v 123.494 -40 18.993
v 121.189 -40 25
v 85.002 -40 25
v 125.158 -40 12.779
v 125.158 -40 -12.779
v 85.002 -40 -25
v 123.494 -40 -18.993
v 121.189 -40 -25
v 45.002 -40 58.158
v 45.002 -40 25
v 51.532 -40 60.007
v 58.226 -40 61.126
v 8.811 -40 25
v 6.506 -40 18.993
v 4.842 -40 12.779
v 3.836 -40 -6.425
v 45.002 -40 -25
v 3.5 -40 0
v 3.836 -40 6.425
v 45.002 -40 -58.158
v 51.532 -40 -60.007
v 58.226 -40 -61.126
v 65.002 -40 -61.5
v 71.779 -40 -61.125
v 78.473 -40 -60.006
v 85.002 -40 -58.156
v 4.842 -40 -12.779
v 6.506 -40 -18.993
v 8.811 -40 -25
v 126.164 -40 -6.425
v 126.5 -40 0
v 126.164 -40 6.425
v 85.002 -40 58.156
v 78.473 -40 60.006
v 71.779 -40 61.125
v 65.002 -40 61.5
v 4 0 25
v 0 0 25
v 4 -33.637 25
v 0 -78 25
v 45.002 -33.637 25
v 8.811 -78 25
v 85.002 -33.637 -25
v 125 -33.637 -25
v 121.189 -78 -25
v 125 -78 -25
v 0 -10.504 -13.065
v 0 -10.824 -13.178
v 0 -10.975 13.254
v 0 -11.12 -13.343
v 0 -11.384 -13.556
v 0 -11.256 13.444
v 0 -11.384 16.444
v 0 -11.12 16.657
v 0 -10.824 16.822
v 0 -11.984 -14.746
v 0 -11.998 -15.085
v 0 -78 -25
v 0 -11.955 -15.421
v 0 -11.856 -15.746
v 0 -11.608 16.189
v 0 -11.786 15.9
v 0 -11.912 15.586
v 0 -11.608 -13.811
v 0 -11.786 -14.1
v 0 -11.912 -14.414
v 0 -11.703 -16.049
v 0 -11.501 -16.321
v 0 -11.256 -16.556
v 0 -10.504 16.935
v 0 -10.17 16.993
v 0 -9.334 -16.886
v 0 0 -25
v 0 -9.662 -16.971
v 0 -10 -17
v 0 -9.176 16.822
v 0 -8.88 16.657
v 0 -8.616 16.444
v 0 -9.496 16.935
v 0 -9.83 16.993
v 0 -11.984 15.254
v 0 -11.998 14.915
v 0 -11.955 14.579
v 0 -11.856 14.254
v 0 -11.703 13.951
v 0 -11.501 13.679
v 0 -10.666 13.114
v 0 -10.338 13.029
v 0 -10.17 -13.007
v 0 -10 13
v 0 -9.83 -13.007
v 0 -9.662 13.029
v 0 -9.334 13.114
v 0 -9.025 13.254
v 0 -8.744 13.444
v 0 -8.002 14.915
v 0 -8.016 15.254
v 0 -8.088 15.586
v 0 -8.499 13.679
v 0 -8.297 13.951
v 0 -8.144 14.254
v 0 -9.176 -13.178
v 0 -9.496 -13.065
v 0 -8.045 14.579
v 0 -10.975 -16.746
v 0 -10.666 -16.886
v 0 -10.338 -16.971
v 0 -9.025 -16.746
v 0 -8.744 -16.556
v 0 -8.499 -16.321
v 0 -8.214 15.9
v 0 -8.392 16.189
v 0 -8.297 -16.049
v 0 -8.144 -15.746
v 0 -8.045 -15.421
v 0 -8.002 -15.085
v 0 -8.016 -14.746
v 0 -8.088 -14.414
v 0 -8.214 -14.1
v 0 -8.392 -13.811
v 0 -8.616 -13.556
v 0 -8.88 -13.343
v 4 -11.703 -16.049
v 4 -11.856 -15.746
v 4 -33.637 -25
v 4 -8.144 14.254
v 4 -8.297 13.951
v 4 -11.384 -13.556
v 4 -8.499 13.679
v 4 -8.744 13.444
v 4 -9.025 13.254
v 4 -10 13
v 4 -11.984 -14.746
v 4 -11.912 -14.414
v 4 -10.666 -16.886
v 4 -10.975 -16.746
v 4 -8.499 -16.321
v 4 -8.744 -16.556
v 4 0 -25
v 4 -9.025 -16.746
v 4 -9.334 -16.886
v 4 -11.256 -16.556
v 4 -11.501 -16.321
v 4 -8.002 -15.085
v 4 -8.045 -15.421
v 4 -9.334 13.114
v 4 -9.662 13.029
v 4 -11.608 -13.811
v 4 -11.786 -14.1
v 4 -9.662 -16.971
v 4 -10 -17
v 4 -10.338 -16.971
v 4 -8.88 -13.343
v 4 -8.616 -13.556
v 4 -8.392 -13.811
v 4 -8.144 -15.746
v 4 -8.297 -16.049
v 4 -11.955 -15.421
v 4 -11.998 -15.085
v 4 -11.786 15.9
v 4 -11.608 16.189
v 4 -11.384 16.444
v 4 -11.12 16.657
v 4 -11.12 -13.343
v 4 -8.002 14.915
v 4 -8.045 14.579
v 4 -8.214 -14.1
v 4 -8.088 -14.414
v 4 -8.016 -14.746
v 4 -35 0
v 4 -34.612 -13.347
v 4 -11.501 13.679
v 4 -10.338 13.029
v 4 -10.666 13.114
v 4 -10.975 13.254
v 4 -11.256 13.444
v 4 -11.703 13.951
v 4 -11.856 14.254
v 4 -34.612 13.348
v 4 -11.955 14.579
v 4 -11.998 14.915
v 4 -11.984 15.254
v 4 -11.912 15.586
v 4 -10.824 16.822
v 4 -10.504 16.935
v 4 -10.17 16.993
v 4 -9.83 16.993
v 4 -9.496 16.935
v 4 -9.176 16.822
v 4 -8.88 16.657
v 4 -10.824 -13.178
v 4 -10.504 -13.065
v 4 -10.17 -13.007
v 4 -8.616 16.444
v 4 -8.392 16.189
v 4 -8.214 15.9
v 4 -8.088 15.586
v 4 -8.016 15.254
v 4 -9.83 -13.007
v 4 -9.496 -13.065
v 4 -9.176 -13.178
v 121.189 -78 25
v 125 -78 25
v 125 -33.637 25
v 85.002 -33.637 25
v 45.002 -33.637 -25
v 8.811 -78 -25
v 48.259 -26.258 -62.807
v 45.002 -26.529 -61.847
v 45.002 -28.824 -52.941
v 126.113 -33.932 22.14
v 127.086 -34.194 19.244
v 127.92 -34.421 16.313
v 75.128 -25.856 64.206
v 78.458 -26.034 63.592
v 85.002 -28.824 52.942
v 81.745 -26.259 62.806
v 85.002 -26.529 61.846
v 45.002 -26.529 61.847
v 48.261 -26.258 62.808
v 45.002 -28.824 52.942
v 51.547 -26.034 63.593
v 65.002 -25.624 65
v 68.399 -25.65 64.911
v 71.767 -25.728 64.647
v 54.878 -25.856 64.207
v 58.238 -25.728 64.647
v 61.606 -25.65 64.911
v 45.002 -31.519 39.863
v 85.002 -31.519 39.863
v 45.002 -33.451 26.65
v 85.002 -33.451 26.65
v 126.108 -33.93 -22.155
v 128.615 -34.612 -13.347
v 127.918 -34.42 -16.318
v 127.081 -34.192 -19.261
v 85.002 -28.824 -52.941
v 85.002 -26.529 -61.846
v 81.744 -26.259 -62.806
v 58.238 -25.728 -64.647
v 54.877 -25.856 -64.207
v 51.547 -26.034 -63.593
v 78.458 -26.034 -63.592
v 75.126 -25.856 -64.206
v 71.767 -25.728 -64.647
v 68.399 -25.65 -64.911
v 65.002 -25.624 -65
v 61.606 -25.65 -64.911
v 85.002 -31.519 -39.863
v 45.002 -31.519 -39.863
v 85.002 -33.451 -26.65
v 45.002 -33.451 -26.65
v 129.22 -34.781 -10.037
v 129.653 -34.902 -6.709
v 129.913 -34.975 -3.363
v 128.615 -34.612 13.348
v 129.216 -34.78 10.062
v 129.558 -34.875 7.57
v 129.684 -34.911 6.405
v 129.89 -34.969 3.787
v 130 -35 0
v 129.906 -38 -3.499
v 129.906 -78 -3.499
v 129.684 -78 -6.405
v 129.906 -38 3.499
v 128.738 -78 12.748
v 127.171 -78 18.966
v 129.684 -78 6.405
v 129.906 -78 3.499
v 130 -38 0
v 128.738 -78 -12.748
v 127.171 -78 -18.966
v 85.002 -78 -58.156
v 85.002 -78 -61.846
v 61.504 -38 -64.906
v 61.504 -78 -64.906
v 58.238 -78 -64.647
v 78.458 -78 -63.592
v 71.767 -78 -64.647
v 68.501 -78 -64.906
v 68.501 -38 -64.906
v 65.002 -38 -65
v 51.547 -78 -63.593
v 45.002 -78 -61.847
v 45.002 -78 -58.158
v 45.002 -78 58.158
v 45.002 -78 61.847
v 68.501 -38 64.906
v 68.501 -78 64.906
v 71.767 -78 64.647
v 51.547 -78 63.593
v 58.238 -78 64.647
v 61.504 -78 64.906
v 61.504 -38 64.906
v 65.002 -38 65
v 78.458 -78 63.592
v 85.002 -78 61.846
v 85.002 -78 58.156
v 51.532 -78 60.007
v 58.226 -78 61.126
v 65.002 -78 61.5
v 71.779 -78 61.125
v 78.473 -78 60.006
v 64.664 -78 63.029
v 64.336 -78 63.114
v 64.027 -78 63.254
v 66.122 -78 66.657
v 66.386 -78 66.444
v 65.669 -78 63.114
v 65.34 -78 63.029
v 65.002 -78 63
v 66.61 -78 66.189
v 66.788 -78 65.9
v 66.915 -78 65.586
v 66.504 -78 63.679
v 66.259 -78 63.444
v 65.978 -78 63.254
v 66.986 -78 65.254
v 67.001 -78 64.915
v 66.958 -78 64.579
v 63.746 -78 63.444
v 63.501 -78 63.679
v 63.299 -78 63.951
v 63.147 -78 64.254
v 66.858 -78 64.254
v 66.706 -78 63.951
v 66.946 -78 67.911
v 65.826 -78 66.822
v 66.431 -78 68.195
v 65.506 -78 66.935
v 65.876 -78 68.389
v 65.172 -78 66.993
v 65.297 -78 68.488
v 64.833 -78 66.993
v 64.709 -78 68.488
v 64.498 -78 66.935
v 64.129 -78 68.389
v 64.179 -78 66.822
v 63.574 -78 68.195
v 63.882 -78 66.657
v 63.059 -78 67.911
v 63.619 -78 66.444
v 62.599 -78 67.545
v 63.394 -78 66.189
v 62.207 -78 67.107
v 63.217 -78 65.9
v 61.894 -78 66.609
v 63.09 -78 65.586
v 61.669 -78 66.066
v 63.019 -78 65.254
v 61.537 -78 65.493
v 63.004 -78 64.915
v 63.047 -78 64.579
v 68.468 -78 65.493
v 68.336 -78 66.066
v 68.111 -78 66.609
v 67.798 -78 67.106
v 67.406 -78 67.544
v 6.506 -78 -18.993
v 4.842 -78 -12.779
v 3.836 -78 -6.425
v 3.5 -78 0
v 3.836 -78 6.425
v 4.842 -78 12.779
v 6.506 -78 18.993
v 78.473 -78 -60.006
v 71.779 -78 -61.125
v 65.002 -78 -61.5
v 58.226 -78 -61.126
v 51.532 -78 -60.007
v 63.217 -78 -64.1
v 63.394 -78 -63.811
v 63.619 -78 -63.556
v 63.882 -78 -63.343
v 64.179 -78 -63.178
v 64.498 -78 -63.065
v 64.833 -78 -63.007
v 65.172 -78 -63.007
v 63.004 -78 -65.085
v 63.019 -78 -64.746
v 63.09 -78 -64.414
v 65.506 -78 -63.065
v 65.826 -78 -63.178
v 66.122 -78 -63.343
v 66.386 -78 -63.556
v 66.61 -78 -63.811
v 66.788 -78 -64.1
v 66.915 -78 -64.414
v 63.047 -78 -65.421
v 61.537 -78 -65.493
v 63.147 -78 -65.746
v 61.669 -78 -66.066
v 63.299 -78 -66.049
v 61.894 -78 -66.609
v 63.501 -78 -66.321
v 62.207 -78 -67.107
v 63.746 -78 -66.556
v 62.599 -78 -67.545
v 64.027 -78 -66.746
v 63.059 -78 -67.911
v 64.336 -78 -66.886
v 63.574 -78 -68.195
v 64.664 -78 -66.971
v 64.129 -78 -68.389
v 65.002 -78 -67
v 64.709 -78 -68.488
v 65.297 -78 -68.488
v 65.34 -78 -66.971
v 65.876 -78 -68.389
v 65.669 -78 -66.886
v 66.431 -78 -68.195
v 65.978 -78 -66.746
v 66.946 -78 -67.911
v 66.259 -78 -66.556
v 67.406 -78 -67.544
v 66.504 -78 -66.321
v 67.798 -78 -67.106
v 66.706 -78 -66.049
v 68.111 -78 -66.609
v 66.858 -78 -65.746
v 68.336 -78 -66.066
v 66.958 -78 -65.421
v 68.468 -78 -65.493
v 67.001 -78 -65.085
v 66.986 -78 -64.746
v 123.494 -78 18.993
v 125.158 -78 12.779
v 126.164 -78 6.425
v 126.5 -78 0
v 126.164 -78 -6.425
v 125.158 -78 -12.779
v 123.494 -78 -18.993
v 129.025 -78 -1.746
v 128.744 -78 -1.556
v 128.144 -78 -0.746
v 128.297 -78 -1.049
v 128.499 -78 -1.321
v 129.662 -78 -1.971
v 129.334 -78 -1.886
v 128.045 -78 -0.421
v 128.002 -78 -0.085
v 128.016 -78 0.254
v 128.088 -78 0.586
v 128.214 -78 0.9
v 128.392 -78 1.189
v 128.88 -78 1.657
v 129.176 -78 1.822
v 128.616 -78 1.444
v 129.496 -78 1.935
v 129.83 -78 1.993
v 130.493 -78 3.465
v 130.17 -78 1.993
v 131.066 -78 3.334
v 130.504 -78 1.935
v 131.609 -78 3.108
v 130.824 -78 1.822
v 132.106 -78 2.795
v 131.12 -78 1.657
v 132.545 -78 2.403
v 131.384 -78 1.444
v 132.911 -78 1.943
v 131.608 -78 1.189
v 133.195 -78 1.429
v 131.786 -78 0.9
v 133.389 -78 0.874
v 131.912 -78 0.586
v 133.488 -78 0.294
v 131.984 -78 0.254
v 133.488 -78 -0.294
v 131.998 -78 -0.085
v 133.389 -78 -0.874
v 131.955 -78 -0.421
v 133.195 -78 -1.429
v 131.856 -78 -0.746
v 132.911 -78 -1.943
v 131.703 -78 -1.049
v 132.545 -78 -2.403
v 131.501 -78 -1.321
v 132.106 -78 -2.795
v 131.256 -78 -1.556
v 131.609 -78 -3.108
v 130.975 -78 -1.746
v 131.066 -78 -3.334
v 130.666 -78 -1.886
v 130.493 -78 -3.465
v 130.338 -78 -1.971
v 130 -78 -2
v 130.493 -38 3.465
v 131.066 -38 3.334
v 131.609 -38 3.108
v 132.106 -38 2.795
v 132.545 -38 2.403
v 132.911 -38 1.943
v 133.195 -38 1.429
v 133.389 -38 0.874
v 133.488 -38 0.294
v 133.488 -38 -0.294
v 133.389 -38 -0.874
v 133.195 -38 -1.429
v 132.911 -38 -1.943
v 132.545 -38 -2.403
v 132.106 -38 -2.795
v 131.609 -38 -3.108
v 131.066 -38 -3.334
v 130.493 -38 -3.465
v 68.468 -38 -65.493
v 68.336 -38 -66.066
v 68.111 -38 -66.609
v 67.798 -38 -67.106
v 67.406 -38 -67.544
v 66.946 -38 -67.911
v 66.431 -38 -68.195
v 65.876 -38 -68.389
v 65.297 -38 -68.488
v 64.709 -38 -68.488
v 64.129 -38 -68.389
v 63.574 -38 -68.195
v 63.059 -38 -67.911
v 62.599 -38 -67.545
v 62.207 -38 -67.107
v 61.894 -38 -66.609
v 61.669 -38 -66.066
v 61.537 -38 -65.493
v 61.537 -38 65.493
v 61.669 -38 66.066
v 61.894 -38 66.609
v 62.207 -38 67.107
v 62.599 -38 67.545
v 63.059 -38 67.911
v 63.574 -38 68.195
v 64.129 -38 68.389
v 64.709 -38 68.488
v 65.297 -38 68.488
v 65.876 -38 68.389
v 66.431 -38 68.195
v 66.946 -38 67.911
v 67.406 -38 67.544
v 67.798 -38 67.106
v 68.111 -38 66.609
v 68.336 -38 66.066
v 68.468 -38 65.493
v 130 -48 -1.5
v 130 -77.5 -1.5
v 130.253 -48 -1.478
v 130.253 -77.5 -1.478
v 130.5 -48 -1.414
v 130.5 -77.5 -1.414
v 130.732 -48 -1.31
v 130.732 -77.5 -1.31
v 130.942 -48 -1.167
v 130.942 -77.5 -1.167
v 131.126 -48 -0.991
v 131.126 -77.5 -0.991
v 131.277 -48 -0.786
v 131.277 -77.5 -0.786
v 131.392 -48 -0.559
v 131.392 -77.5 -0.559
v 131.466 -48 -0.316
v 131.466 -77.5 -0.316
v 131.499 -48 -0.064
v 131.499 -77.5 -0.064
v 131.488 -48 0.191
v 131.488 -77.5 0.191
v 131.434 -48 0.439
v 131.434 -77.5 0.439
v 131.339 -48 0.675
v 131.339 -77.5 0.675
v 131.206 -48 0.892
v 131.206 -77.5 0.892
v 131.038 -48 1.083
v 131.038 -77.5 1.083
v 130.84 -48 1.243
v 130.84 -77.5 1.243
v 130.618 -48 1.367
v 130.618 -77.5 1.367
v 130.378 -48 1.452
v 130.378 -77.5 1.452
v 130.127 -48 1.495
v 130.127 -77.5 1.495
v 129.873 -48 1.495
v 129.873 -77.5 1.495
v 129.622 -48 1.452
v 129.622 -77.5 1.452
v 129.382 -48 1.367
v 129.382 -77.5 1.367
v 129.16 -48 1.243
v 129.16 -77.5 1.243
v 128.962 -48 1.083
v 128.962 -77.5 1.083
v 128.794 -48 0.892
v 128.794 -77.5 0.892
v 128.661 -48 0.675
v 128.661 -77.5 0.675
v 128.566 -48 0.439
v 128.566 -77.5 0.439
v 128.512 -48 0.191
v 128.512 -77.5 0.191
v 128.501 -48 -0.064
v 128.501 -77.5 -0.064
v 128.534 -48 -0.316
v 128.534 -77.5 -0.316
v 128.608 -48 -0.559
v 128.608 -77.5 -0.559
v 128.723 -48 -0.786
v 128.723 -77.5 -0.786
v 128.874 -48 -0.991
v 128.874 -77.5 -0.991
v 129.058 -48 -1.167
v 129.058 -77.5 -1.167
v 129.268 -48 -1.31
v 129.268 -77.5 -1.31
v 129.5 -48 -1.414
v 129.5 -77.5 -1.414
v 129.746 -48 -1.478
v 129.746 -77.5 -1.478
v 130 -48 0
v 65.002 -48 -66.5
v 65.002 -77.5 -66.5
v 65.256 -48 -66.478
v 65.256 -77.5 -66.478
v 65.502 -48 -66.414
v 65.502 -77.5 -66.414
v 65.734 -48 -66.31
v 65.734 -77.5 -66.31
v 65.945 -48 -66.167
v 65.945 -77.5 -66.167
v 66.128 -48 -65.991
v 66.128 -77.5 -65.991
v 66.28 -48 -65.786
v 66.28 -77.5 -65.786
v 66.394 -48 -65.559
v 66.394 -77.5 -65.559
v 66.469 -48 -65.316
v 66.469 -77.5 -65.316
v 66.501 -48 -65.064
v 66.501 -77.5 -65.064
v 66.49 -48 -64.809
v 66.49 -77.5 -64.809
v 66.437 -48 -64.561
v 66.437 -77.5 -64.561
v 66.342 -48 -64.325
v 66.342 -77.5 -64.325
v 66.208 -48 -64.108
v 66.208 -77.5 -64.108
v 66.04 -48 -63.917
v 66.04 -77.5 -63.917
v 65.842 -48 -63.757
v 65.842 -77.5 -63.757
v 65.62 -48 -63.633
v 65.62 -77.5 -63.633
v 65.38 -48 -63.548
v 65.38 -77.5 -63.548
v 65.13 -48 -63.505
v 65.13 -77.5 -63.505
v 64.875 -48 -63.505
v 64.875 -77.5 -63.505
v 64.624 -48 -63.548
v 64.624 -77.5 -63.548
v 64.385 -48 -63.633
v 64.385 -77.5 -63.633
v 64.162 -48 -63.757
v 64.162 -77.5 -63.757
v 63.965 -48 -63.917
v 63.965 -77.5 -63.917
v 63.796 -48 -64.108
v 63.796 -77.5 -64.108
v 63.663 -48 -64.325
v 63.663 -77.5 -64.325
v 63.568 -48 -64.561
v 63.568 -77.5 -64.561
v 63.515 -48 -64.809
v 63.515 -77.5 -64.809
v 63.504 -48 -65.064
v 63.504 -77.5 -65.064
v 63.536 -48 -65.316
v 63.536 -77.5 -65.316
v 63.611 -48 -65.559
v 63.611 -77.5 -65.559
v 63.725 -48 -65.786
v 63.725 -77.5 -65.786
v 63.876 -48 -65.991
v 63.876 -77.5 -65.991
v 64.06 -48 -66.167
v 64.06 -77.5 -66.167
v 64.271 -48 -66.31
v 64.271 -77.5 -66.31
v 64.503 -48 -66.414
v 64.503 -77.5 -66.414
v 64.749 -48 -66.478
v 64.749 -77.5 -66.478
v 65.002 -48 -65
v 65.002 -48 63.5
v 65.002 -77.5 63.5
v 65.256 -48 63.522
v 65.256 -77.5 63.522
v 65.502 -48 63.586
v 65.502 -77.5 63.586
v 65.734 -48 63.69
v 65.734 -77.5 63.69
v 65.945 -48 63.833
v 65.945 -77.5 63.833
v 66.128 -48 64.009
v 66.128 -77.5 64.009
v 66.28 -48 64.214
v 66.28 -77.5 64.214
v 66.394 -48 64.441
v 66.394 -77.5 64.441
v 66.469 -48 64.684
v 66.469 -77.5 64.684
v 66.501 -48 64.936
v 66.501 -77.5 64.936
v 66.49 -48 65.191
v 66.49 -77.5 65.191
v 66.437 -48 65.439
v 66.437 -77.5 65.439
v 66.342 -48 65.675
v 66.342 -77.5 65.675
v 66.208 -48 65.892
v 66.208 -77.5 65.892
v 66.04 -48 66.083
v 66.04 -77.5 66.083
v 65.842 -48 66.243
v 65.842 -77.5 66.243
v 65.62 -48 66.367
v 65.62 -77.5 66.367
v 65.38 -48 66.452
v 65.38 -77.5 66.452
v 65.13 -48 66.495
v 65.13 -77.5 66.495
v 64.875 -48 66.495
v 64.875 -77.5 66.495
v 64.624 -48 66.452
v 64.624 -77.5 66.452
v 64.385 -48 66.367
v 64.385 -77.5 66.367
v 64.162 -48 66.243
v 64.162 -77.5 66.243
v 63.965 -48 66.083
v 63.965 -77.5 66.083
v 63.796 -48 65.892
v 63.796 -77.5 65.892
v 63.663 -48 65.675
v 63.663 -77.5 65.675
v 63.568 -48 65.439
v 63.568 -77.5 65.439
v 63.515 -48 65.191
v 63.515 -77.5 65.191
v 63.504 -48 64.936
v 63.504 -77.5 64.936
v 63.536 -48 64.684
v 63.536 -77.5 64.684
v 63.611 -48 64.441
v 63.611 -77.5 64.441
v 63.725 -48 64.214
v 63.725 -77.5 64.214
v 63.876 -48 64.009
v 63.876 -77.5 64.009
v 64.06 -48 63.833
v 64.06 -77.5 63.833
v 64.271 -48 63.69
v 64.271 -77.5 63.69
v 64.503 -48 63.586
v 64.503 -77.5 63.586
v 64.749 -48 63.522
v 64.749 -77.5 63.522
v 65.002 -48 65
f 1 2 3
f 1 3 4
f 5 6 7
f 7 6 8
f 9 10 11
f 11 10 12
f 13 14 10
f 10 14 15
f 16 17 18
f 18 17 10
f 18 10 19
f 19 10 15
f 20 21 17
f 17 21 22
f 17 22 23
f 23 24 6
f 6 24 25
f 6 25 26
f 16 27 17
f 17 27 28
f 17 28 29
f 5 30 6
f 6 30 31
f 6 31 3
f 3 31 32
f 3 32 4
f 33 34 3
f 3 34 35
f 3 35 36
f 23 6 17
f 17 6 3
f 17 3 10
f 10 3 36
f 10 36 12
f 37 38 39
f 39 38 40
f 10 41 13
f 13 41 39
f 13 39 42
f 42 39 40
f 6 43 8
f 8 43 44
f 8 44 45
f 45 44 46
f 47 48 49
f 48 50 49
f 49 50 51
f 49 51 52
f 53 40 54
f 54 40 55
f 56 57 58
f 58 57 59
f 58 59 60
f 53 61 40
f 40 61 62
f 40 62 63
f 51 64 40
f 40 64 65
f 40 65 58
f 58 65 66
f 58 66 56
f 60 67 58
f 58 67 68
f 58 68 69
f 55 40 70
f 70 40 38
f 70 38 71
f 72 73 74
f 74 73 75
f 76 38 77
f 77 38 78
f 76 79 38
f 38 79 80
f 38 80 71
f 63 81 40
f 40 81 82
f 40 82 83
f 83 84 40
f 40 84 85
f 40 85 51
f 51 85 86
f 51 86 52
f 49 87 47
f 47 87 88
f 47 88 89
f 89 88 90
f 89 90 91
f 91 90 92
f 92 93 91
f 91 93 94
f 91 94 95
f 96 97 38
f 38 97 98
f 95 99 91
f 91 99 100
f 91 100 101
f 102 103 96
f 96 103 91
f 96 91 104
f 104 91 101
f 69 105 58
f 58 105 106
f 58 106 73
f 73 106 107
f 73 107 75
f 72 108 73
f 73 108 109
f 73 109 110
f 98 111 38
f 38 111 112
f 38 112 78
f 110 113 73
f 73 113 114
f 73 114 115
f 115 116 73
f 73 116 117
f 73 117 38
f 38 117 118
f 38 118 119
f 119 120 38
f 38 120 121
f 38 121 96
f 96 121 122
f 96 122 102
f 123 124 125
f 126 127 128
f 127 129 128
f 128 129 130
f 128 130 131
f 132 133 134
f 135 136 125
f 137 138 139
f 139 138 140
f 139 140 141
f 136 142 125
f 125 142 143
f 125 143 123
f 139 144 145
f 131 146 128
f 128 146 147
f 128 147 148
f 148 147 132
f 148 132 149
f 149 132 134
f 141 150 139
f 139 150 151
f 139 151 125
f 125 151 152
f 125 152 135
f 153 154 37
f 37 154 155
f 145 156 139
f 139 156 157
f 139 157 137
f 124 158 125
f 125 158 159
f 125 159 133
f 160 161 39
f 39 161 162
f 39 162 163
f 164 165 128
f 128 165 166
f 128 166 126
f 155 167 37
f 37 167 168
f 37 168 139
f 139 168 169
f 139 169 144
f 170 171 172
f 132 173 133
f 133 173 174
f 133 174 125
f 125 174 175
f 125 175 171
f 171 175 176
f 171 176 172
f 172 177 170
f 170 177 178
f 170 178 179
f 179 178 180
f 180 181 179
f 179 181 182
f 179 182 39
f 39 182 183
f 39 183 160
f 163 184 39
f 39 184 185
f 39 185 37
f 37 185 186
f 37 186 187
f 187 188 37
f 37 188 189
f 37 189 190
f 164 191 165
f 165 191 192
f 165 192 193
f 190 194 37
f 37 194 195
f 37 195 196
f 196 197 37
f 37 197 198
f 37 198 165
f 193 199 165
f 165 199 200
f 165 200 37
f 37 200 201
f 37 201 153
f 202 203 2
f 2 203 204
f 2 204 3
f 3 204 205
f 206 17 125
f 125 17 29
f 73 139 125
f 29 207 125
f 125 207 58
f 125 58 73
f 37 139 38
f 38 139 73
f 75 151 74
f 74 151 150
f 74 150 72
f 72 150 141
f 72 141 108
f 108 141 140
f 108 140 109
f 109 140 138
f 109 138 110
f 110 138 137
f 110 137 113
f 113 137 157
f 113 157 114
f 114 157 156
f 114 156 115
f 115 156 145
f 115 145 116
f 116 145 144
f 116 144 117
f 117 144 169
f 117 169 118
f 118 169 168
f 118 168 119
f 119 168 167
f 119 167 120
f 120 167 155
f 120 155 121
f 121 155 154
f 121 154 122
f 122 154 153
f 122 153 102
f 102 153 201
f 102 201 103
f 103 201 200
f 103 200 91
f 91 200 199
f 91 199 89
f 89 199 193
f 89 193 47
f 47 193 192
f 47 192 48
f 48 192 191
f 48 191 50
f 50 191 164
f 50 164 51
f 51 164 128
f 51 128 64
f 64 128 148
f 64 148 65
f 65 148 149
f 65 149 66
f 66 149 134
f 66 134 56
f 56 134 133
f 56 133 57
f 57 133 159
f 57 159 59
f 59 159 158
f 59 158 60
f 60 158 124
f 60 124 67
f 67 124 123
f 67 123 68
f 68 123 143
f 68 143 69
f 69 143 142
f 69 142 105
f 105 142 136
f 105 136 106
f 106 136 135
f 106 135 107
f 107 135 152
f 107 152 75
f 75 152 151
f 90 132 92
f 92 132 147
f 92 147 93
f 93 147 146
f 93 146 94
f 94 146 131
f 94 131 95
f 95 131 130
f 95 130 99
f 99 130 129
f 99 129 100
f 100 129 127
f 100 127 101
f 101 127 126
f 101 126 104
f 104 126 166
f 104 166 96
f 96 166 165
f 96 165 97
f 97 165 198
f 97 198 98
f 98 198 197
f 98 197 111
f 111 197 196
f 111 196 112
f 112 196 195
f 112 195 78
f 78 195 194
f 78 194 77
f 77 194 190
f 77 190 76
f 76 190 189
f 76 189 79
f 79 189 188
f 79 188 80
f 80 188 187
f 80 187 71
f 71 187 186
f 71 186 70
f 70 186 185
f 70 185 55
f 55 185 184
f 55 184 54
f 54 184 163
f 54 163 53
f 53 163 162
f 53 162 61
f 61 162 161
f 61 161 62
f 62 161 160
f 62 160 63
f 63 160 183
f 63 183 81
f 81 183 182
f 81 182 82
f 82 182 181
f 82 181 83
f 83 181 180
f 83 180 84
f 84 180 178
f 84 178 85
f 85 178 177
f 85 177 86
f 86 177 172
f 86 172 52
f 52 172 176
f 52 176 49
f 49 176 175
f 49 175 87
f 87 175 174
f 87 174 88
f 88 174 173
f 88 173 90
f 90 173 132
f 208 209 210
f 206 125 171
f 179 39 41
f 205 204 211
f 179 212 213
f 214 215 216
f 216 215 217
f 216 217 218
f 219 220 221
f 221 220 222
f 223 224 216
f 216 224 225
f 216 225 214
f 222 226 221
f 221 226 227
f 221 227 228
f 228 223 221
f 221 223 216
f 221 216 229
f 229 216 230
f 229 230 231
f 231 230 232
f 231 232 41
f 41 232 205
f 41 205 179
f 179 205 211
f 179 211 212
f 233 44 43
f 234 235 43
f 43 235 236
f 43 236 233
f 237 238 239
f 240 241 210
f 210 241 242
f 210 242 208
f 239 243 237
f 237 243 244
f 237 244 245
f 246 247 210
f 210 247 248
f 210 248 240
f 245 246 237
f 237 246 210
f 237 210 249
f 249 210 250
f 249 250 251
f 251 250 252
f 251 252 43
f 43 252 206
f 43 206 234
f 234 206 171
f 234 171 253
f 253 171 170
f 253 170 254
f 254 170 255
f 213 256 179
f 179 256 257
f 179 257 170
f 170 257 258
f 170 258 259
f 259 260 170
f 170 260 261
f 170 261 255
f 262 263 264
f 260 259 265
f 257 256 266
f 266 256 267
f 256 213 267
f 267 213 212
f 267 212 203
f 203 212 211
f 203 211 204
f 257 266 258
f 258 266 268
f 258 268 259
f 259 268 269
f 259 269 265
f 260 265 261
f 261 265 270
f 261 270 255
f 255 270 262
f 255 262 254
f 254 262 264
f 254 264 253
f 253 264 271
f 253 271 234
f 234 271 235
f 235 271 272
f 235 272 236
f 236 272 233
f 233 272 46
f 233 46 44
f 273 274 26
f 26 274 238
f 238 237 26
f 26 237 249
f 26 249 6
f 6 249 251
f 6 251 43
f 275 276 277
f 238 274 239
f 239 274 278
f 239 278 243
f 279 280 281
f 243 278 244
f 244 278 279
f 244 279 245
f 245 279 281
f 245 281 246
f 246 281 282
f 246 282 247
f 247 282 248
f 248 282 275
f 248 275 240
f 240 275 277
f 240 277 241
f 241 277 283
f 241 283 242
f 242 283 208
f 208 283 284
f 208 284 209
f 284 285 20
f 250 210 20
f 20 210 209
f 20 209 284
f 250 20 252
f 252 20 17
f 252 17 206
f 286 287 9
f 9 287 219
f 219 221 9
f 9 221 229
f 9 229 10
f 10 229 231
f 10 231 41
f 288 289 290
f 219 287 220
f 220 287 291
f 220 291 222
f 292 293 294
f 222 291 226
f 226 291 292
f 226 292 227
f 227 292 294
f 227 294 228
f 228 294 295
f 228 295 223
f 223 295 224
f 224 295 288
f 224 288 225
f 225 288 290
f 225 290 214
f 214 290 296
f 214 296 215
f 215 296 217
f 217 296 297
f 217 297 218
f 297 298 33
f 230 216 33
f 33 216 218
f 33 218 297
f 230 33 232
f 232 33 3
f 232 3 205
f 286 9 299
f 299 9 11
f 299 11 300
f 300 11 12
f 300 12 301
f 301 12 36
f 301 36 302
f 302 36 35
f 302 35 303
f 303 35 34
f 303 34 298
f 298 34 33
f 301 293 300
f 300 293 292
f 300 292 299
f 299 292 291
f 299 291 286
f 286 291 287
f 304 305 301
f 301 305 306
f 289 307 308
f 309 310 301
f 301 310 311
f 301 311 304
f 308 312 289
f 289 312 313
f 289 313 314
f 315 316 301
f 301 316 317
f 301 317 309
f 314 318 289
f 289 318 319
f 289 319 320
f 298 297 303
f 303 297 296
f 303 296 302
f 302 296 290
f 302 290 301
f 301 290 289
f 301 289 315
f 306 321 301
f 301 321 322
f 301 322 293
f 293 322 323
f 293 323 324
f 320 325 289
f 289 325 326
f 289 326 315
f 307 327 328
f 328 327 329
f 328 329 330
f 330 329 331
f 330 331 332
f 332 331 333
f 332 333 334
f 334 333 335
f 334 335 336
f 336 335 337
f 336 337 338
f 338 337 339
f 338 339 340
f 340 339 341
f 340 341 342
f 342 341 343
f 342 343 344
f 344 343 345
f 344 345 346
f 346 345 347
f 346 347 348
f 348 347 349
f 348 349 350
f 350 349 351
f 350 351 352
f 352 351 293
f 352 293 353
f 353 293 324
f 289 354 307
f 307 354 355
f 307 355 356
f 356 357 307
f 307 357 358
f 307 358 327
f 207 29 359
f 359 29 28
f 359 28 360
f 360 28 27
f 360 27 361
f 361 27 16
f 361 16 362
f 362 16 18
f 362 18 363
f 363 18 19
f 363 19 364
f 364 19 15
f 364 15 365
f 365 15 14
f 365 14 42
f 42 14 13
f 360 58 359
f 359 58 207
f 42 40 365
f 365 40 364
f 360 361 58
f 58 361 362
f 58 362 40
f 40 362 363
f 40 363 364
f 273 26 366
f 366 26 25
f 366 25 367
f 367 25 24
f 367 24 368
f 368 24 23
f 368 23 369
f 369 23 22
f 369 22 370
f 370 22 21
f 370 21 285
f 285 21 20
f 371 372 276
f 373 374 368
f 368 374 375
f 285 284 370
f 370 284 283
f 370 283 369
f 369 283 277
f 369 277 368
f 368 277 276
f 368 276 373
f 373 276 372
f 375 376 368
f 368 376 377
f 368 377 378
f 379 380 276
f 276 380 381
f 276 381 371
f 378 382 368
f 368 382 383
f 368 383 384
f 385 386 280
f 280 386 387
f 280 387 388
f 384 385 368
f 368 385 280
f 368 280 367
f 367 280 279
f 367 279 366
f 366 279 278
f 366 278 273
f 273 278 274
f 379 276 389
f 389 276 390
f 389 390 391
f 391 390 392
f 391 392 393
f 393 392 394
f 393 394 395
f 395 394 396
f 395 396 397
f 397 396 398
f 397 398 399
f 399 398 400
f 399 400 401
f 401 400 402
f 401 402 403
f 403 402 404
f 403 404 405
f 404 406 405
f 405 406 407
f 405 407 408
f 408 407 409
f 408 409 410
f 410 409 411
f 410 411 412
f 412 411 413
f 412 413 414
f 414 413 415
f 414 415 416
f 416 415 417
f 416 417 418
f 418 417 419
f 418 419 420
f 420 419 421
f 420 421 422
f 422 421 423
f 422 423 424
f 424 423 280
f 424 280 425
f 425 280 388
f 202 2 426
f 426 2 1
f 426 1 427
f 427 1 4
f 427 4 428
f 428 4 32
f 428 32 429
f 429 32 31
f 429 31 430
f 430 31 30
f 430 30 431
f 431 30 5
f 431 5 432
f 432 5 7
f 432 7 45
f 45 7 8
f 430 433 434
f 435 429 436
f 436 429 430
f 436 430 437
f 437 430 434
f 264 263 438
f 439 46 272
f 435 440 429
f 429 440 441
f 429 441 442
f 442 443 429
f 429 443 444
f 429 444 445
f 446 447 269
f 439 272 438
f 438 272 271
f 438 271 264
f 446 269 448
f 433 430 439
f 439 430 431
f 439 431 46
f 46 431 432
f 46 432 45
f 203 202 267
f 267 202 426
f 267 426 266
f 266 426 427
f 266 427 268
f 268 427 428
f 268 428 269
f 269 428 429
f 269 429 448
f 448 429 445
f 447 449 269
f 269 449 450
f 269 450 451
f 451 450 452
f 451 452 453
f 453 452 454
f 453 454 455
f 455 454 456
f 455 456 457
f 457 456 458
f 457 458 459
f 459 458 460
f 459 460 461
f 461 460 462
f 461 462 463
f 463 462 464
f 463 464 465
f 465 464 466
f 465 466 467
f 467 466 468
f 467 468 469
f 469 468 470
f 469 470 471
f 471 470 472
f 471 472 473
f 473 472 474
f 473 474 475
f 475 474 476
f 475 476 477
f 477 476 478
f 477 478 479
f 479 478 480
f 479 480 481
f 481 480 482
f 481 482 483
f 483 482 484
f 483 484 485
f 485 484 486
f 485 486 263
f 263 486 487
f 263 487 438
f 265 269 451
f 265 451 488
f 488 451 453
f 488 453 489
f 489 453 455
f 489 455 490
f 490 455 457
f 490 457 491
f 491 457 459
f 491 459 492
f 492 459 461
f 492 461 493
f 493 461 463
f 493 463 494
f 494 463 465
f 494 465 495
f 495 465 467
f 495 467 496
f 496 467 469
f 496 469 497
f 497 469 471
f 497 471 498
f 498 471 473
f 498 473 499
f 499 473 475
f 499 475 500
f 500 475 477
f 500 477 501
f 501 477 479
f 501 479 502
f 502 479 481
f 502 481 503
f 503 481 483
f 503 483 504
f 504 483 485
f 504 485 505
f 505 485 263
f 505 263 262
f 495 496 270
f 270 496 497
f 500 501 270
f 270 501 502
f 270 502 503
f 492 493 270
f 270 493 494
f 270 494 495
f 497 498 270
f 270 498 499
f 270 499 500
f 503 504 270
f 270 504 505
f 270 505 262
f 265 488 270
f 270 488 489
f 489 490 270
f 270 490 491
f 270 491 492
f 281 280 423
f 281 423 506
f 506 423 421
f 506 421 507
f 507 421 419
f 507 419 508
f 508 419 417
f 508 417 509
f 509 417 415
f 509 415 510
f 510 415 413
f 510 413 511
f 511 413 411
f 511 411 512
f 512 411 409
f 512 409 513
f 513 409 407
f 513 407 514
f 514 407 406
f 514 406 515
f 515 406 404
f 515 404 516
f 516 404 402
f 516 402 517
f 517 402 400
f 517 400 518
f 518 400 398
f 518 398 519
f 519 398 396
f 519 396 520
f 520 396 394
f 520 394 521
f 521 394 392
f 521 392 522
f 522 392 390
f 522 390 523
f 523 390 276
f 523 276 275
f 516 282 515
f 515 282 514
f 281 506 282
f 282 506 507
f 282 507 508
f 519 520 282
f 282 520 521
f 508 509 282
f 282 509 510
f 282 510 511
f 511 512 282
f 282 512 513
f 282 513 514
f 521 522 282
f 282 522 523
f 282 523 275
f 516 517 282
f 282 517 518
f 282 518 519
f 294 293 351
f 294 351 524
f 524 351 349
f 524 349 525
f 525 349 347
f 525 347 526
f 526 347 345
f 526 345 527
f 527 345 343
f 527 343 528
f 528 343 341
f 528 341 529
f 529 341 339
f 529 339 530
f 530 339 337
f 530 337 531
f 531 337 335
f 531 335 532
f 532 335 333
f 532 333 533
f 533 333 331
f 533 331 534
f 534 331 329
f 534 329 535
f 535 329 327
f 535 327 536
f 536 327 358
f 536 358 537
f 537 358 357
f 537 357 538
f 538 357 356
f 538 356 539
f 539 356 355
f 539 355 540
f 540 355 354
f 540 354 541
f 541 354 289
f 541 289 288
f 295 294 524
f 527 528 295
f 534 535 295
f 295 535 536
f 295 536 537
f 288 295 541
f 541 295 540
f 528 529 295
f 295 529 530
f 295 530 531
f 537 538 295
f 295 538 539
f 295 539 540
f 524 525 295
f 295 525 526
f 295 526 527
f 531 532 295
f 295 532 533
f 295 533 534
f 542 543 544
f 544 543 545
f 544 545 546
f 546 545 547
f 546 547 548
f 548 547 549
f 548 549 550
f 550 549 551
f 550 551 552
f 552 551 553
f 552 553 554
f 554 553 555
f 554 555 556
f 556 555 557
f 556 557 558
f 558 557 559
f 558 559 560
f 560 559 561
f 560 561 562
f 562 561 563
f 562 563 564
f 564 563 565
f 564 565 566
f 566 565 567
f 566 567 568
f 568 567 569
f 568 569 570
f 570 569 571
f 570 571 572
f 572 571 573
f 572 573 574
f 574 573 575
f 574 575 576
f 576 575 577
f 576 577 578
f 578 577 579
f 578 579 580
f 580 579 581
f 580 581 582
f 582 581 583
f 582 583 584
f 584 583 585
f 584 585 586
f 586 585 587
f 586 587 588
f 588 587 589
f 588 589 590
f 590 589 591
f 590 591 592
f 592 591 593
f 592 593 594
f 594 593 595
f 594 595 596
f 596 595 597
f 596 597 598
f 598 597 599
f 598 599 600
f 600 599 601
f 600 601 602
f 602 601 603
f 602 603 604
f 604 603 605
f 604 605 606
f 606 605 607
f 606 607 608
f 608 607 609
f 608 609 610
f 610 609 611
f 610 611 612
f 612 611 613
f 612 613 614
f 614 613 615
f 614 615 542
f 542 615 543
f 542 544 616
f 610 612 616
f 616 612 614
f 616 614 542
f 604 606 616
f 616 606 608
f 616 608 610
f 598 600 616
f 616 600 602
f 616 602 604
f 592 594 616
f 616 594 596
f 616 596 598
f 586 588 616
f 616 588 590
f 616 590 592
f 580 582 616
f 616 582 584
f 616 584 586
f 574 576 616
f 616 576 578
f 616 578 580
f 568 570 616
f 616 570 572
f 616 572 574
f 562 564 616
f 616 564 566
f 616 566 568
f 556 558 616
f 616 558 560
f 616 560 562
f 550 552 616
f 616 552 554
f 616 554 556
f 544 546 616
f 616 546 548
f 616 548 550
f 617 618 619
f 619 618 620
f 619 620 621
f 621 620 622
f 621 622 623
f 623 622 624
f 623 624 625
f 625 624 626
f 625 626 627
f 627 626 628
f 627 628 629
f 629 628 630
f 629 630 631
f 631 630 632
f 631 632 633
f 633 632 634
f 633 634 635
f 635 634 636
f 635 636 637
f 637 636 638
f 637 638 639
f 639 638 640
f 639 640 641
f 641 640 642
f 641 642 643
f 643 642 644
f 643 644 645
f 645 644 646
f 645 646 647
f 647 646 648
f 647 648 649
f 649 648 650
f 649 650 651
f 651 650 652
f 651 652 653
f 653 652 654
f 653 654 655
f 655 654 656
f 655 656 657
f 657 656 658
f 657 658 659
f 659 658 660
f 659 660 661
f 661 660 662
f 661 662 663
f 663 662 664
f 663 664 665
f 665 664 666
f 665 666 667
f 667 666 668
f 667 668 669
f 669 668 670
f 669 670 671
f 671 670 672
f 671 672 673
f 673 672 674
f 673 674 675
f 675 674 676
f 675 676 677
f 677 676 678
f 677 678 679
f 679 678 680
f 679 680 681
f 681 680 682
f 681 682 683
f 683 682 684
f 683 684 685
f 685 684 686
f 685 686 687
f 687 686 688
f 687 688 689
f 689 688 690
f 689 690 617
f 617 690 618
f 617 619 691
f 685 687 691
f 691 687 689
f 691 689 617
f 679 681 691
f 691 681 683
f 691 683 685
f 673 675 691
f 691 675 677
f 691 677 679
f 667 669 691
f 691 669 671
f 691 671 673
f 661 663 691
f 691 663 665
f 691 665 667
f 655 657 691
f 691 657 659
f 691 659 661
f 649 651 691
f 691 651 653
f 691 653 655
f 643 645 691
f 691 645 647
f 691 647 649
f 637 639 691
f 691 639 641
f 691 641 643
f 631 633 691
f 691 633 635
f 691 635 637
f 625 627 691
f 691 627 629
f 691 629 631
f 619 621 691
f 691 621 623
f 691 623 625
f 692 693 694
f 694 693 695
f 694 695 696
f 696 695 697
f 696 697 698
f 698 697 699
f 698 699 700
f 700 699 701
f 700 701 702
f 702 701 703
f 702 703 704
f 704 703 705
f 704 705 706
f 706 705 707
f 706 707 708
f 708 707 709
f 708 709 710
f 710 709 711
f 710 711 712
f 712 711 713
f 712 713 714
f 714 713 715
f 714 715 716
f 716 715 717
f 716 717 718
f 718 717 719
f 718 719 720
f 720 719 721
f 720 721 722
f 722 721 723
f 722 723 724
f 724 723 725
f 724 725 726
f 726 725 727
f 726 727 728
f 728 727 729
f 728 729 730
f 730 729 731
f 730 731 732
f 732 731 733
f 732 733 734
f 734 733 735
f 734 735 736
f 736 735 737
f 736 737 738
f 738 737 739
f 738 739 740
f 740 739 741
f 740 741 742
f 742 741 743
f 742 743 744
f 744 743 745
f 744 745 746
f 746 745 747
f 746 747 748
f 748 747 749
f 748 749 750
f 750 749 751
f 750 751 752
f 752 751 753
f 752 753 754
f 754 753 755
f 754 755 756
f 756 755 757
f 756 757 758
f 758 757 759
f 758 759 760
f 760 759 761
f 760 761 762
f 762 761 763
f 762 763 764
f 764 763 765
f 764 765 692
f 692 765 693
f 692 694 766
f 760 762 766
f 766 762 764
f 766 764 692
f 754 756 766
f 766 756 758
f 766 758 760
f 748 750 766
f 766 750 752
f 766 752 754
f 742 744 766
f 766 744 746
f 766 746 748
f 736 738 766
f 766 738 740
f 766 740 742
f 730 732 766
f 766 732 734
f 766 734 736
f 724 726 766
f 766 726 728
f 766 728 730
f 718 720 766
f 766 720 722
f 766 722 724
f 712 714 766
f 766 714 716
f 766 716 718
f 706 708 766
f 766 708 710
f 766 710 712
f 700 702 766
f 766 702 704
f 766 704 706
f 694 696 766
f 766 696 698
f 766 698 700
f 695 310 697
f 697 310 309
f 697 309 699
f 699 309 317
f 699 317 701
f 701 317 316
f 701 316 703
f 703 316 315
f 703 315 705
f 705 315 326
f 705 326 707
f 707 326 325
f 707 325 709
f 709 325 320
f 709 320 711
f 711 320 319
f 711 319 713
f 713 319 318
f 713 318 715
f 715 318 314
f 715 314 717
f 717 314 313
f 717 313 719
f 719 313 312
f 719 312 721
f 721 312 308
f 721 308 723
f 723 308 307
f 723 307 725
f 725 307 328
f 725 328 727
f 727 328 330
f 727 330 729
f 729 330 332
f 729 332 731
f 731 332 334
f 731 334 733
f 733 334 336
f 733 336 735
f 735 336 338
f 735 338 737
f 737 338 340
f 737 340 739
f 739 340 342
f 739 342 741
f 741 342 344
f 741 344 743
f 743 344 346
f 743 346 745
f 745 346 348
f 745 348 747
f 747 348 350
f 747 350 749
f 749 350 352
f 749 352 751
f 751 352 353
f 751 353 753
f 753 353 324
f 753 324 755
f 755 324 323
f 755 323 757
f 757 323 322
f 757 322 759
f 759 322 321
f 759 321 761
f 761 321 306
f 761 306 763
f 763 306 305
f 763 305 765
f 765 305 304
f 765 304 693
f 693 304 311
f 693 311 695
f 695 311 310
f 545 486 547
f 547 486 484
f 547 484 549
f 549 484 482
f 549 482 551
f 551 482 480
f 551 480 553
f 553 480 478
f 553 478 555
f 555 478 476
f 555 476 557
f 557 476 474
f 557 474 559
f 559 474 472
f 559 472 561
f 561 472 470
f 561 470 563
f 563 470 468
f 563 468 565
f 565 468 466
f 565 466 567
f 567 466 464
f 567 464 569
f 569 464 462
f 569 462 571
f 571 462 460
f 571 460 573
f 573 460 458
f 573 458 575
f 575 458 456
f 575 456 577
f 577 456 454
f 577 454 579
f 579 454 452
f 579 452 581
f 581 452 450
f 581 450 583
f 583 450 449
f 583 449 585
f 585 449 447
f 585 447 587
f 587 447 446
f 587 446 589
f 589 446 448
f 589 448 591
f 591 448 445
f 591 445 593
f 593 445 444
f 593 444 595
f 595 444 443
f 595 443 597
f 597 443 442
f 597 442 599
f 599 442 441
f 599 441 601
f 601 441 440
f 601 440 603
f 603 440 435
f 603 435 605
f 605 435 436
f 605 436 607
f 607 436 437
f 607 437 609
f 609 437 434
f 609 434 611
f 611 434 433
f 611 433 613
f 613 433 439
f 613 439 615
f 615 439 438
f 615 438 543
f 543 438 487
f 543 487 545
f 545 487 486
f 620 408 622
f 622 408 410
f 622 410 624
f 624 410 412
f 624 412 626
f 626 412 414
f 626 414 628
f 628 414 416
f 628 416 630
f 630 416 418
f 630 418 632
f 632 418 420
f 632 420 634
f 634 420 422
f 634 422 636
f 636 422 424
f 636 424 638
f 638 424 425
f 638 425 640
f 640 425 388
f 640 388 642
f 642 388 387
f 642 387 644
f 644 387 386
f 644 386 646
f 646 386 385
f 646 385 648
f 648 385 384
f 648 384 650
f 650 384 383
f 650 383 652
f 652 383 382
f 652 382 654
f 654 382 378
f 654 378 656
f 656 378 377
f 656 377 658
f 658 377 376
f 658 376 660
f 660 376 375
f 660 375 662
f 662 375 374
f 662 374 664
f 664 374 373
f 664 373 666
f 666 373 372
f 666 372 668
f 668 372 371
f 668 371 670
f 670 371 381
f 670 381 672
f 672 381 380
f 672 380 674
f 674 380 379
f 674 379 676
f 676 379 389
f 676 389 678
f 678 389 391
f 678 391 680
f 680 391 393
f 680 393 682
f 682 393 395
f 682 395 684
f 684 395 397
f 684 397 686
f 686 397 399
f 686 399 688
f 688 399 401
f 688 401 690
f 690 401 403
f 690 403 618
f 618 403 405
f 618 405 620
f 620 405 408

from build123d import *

# Parameters (mm, degrees)
SKETCH_1_W           = 50
SKETCH_1_H           = 40
EXTRUDE_1_DEPTH      = 4
SKETCH_2_R           = 2
CUT_EXTRUDE_1_DEPTH  = 4
EXTRUDE_2_DEPTH      = 180
CUT_EXTRUDE_START    = -60
CUT_EXTRUDE_2_DEPTH  = 60
CUT_EXTRUDE_3_DEPTH  = 60
EXTRUDE_3_REACH      = 191.95
EXTRUDE_3_END_RADIUS = 230
EXTRUDE_START        = 38
EXTRUDE_4_DEPTH      = 38
CUT_EXTRUDE_4_DEPTH  = 211.154705038
SKETCH_9_R           = 3.5
EXTRUDE_5_DEPTH      = 40
SKETCH_10_R          = 1.5
CUT_EXTRUDE_5_DEPTH  = 30
CHAMFER_1_SIZE       = 0.5
EXTRUDE_6_REACH      = 171.111
EXTRUDE_6_END_RADIUS = 235
EXTRUDE_7_REACH      = 171.111


with BuildPart() as part:
    # 草图1 → 凸台-拉伸1 (new body)
    with BuildSketch(Plane(origin=(0, 0, 0), x_dir=(0, 0, -1), z_dir=(1, 0, 0))):
        with Locations((0, -20)):
            Rectangle(SKETCH_1_W, SKETCH_1_H)
    extrude(amount=EXTRUDE_1_DEPTH)

    # 草图2 → 切除-拉伸1 (cut)
    with BuildSketch(Plane(origin=(4, 0, 0), x_dir=(0, 0, -1), z_dir=(1, 0, 0))):
        with Locations((-15, -10)):
            Circle(SKETCH_2_R)
        with Locations((15, -10)):
            Circle(SKETCH_2_R)
    extrude(amount=-CUT_EXTRUDE_1_DEPTH, mode=Mode.SUBTRACT)

    # 草图3 → 凸台-拉伸2 (add)
    with BuildSketch(Plane(origin=(4, 0, 0), x_dir=(0, 0, -1), z_dir=(1, 0, 0))):
        with BuildLine():
            Line((-25, -33.637267303), (-25, -38.666428911))
            ThreePointArc((-25, -38.666428911), (0, -40), (25, -38.666428911))
            Line((25, -38.666428911), (25, -33.637267303))
            ThreePointArc((25, -33.637267303), (0, -35), (-25, -33.637267303))
        make_face()
    extrude(amount=EXTRUDE_2_DEPTH)

    # 草图4 → 切除-拉伸2 (cut)
    with BuildSketch(Plane(origin=(4, 0, 0), x_dir=(0, 0, -1), z_dir=(1, 0, 0)).offset(CUT_EXTRUDE_START)):
        with BuildLine():
            Line((25, -40), (25, -38.666428911))
            ThreePointArc((25, -38.666428911), (12.517771485, -39.666370401), (0, -40))
            Line((0, -40), (25, -40))
        make_face()
    extrude(amount=CUT_EXTRUDE_2_DEPTH, mode=Mode.SUBTRACT)

    # 草图5 → 切除-拉伸3 (cut)
    with BuildSketch(Plane(origin=(4, 0, 0), x_dir=(0, 0, -1), z_dir=(1, 0, 0)).offset(CUT_EXTRUDE_START)):
        with BuildLine():
            Line((-25, -38.666428911), (-25, -40))
            Line((-25, -40), (0, -40))
            ThreePointArc((0, -40), (-12.517771485, -39.666370401), (-25, -38.666428911))
        make_face()
    extrude(amount=CUT_EXTRUDE_3_DEPTH, mode=Mode.SUBTRACT)

    # 凸台-拉伸3: up to this cylinder (the profile starts outside it)
    extrude_3_end = Plane(origin=(65.000728, 195, 0), z_dir=(-1, 0, 0)) * Cylinder(EXTRUDE_3_END_RADIUS, 844.9, mode=Mode.PRIVATE)
    # 草图6 → 凸台-拉伸3 (add, up to the surface)
    with BuildSketch(Plane(origin=(0, -40, 0), x_dir=(-1, 0, 0), z_dir=(0, -1, 0)), mode=Mode.PRIVATE) as extrude_3_sk1:
        with BuildLine():
            Line((-85.002334196, 61.845829501), (-85.002334196, 25))
            Line((-85.002334196, 25), (-125, 25))
            ThreePointArc((-125, 25), (-130, 0), (-125, -25))
            Line((-125, -25), (-85.002334196, -25))
            Line((-85.002334196, -25), (-85.002334196, -61.845829501))
            ThreePointArc((-85.002334196, -61.845829501), (-65.002453212, -64.999999954), (-45.002334196, -61.84733917))
            Line((-45.002334196, -61.84733917), (-45.002334196, -25))
            Line((-45.002334196, -25), (-5, -25))
            ThreePointArc((-5, -25), (0, 0), (-5, 25))
            Line((-5, 25), (-45.002334196, 25))
            Line((-45.002334196, 25), (-45.002334196, 61.84733917))
            ThreePointArc((-45.002334196, 61.84733917), (-65.002453212, 64.999999954), (-85.002334196, 61.845829501))
        make_face()
    extrude_3_tool1 = extrude(extrude_3_sk1.sketch, amount=-EXTRUDE_3_REACH, mode=Mode.PRIVATE) - extrude_3_end
    extrude_3 = extrude_3_tool1.solids().sort_by_distance((65.000728, -40, 0))[0]
    add(extrude_3)

    # 镜向1: 凸台-拉伸3 across plane
    add(extrude_3.mirror(Plane.XY))

    # 草图7 → 凸台-拉伸4 (add)
    with BuildSketch(Plane.XZ.offset(40).offset(EXTRUDE_START)):
        with BuildLine():
            Line((5, -25), (8.810588186, -25))
            ThreePointArc((8.810588186, -25), (3.5, 0), (8.810588186, 25))
            Line((8.810588186, 25), (5, 25))
            ThreePointArc((5, 25), (1.26225608, 12.747548784), (0, 0))
            ThreePointArc((0, 0), (1.26225608, -12.747548784), (5, -25))
        make_face()
        with BuildLine():
            Line((45.002334196, -58.157917452), (45.002334196, -61.84733917))
            ThreePointArc((45.002334196, -61.84733917), (65.002453212, -64.999999954), (85.002334196, -61.845829501))
            Line((85.002334196, -61.845829501), (85.002334196, -58.156312011))
            ThreePointArc((85.002334196, -58.156312011), (65.002468367, -61.49999995), (45.002334196, -58.157917452))
        make_face()
        with BuildLine():
            Line((121.189411814, -25), (125, -25))
            ThreePointArc((125, -25), (128.73774392, -12.747548784), (130, 0))
            ThreePointArc((130, 0), (128.73774392, 12.747548784), (125, 25))
            Line((125, 25), (121.189411814, 25))
            ThreePointArc((121.189411814, 25), (126.5, 0), (121.189411814, -25))
        make_face()
        with BuildLine():
            Line((85.002334196, 58.156312011), (85.002334196, 61.845829501))
            ThreePointArc((85.002334196, 61.845829501), (65.002453212, 64.999999954), (45.002334196, 61.84733917))
            Line((45.002334196, 61.84733917), (45.002334196, 58.157917452))
            ThreePointArc((45.002334196, 58.157917452), (65.002468367, 61.49999995), (85.002334196, 58.156312011))
        make_face()
    extrude(amount=-EXTRUDE_4_DEPTH)

    # 草图8 → 切除-拉伸4 (cut, through all)
    with BuildSketch(Plane.XZ.offset(78)):
        with BuildLine():
            Line((184, 25), (125, 25))
            ThreePointArc((125, 25), (130, 0), (125, -25))
            Line((125, -25), (184, -25))
            Line((184, -25), (184, 25))
        make_face()
    extrude(amount=-CUT_EXTRUDE_4_DEPTH, mode=Mode.SUBTRACT)

    # 草图9 → 凸台-拉伸5 (add)
    with BuildSketch(Plane.XZ.offset(78)):
        with Locations((130, 0)):
            Circle(SKETCH_9_R)
        with Locations((65.002453212, -64.999999954)):
            Circle(SKETCH_9_R)
        with Locations((65.002453212, 64.999999954)):
            Circle(SKETCH_9_R)
    extrude(amount=-EXTRUDE_5_DEPTH)

    # 草图10 → 切除-拉伸5 (cut)
    with BuildSketch(Plane.XZ.offset(78)):
        with Locations(Location((65.002453212, 64.999999954, 0), (0, 0, 270))):
            Circle(SKETCH_10_R)
        with Locations(Location((130, 0, 0), (0, 0, 270))):
            Circle(SKETCH_10_R)
        with Locations(Location((65.002453212, -64.999999954, 0), (0, 0, 270))):
            Circle(SKETCH_10_R)
    extrude(amount=-CUT_EXTRUDE_5_DEPTH, mode=Mode.SUBTRACT)

    # 倒角1
    chamfer_1_edges = [part.edges().sort_by_distance(p)[0] for p in [
        (65.002453212, -78, 66.499999954),
        (130, -78, 1.5),
        (65.002453212, -78, -63.499999954),
    ]]
    chamfer(chamfer_1_edges, length=CHAMFER_1_SIZE)

    # 凸台-拉伸6: up to this cylinder (the profile starts outside it)
    extrude_6_end = Plane(origin=(1.489564, 195, 0), z_dir=(-1, 0, 0)) * Cylinder(EXTRUDE_6_END_RADIUS, 813.222, mode=Mode.PRIVATE)
    # 草图11 → 凸台-拉伸6 (add, up to the surface)
    with BuildSketch(Plane.XZ.offset(78), mode=Mode.PRIVATE) as extrude_6_sk1:
        with BuildLine():
            Line((0, 25), (0, 0))
            ThreePointArc((0, 0), (1.26225608, 12.747548784), (5, 25))
            Line((5, 25), (0, 25))
        make_face()
    extrude_6_tool1 = extrude(extrude_6_sk1.sketch, amount=-EXTRUDE_6_REACH, mode=Mode.PRIVATE) - extrude_6_end
    add(extrude_6_tool1.solids().sort_by_distance((1.489564, -78, 18.799089))[0])

    # 草图12 → 凸台-拉伸7 (add, up to next)
    with BuildSketch(Plane.XZ.offset(78), mode=Mode.PRIVATE) as extrude_7_sk1:
        with BuildLine():
            Line((0, -25), (5, -25))
            ThreePointArc((5, -25), (1.26225608, -12.747548784), (0, 0))
            Line((0, 0), (0, -25))
        make_face()
    extrude_7_tool1 = extrude(extrude_7_sk1.sketch, amount=-EXTRUDE_7_REACH, mode=Mode.PRIVATE) - part.part
    add(extrude_7_tool1.solids().sort_by_distance((1.489564, -78, -18.799089))[0])


solid = part.part
